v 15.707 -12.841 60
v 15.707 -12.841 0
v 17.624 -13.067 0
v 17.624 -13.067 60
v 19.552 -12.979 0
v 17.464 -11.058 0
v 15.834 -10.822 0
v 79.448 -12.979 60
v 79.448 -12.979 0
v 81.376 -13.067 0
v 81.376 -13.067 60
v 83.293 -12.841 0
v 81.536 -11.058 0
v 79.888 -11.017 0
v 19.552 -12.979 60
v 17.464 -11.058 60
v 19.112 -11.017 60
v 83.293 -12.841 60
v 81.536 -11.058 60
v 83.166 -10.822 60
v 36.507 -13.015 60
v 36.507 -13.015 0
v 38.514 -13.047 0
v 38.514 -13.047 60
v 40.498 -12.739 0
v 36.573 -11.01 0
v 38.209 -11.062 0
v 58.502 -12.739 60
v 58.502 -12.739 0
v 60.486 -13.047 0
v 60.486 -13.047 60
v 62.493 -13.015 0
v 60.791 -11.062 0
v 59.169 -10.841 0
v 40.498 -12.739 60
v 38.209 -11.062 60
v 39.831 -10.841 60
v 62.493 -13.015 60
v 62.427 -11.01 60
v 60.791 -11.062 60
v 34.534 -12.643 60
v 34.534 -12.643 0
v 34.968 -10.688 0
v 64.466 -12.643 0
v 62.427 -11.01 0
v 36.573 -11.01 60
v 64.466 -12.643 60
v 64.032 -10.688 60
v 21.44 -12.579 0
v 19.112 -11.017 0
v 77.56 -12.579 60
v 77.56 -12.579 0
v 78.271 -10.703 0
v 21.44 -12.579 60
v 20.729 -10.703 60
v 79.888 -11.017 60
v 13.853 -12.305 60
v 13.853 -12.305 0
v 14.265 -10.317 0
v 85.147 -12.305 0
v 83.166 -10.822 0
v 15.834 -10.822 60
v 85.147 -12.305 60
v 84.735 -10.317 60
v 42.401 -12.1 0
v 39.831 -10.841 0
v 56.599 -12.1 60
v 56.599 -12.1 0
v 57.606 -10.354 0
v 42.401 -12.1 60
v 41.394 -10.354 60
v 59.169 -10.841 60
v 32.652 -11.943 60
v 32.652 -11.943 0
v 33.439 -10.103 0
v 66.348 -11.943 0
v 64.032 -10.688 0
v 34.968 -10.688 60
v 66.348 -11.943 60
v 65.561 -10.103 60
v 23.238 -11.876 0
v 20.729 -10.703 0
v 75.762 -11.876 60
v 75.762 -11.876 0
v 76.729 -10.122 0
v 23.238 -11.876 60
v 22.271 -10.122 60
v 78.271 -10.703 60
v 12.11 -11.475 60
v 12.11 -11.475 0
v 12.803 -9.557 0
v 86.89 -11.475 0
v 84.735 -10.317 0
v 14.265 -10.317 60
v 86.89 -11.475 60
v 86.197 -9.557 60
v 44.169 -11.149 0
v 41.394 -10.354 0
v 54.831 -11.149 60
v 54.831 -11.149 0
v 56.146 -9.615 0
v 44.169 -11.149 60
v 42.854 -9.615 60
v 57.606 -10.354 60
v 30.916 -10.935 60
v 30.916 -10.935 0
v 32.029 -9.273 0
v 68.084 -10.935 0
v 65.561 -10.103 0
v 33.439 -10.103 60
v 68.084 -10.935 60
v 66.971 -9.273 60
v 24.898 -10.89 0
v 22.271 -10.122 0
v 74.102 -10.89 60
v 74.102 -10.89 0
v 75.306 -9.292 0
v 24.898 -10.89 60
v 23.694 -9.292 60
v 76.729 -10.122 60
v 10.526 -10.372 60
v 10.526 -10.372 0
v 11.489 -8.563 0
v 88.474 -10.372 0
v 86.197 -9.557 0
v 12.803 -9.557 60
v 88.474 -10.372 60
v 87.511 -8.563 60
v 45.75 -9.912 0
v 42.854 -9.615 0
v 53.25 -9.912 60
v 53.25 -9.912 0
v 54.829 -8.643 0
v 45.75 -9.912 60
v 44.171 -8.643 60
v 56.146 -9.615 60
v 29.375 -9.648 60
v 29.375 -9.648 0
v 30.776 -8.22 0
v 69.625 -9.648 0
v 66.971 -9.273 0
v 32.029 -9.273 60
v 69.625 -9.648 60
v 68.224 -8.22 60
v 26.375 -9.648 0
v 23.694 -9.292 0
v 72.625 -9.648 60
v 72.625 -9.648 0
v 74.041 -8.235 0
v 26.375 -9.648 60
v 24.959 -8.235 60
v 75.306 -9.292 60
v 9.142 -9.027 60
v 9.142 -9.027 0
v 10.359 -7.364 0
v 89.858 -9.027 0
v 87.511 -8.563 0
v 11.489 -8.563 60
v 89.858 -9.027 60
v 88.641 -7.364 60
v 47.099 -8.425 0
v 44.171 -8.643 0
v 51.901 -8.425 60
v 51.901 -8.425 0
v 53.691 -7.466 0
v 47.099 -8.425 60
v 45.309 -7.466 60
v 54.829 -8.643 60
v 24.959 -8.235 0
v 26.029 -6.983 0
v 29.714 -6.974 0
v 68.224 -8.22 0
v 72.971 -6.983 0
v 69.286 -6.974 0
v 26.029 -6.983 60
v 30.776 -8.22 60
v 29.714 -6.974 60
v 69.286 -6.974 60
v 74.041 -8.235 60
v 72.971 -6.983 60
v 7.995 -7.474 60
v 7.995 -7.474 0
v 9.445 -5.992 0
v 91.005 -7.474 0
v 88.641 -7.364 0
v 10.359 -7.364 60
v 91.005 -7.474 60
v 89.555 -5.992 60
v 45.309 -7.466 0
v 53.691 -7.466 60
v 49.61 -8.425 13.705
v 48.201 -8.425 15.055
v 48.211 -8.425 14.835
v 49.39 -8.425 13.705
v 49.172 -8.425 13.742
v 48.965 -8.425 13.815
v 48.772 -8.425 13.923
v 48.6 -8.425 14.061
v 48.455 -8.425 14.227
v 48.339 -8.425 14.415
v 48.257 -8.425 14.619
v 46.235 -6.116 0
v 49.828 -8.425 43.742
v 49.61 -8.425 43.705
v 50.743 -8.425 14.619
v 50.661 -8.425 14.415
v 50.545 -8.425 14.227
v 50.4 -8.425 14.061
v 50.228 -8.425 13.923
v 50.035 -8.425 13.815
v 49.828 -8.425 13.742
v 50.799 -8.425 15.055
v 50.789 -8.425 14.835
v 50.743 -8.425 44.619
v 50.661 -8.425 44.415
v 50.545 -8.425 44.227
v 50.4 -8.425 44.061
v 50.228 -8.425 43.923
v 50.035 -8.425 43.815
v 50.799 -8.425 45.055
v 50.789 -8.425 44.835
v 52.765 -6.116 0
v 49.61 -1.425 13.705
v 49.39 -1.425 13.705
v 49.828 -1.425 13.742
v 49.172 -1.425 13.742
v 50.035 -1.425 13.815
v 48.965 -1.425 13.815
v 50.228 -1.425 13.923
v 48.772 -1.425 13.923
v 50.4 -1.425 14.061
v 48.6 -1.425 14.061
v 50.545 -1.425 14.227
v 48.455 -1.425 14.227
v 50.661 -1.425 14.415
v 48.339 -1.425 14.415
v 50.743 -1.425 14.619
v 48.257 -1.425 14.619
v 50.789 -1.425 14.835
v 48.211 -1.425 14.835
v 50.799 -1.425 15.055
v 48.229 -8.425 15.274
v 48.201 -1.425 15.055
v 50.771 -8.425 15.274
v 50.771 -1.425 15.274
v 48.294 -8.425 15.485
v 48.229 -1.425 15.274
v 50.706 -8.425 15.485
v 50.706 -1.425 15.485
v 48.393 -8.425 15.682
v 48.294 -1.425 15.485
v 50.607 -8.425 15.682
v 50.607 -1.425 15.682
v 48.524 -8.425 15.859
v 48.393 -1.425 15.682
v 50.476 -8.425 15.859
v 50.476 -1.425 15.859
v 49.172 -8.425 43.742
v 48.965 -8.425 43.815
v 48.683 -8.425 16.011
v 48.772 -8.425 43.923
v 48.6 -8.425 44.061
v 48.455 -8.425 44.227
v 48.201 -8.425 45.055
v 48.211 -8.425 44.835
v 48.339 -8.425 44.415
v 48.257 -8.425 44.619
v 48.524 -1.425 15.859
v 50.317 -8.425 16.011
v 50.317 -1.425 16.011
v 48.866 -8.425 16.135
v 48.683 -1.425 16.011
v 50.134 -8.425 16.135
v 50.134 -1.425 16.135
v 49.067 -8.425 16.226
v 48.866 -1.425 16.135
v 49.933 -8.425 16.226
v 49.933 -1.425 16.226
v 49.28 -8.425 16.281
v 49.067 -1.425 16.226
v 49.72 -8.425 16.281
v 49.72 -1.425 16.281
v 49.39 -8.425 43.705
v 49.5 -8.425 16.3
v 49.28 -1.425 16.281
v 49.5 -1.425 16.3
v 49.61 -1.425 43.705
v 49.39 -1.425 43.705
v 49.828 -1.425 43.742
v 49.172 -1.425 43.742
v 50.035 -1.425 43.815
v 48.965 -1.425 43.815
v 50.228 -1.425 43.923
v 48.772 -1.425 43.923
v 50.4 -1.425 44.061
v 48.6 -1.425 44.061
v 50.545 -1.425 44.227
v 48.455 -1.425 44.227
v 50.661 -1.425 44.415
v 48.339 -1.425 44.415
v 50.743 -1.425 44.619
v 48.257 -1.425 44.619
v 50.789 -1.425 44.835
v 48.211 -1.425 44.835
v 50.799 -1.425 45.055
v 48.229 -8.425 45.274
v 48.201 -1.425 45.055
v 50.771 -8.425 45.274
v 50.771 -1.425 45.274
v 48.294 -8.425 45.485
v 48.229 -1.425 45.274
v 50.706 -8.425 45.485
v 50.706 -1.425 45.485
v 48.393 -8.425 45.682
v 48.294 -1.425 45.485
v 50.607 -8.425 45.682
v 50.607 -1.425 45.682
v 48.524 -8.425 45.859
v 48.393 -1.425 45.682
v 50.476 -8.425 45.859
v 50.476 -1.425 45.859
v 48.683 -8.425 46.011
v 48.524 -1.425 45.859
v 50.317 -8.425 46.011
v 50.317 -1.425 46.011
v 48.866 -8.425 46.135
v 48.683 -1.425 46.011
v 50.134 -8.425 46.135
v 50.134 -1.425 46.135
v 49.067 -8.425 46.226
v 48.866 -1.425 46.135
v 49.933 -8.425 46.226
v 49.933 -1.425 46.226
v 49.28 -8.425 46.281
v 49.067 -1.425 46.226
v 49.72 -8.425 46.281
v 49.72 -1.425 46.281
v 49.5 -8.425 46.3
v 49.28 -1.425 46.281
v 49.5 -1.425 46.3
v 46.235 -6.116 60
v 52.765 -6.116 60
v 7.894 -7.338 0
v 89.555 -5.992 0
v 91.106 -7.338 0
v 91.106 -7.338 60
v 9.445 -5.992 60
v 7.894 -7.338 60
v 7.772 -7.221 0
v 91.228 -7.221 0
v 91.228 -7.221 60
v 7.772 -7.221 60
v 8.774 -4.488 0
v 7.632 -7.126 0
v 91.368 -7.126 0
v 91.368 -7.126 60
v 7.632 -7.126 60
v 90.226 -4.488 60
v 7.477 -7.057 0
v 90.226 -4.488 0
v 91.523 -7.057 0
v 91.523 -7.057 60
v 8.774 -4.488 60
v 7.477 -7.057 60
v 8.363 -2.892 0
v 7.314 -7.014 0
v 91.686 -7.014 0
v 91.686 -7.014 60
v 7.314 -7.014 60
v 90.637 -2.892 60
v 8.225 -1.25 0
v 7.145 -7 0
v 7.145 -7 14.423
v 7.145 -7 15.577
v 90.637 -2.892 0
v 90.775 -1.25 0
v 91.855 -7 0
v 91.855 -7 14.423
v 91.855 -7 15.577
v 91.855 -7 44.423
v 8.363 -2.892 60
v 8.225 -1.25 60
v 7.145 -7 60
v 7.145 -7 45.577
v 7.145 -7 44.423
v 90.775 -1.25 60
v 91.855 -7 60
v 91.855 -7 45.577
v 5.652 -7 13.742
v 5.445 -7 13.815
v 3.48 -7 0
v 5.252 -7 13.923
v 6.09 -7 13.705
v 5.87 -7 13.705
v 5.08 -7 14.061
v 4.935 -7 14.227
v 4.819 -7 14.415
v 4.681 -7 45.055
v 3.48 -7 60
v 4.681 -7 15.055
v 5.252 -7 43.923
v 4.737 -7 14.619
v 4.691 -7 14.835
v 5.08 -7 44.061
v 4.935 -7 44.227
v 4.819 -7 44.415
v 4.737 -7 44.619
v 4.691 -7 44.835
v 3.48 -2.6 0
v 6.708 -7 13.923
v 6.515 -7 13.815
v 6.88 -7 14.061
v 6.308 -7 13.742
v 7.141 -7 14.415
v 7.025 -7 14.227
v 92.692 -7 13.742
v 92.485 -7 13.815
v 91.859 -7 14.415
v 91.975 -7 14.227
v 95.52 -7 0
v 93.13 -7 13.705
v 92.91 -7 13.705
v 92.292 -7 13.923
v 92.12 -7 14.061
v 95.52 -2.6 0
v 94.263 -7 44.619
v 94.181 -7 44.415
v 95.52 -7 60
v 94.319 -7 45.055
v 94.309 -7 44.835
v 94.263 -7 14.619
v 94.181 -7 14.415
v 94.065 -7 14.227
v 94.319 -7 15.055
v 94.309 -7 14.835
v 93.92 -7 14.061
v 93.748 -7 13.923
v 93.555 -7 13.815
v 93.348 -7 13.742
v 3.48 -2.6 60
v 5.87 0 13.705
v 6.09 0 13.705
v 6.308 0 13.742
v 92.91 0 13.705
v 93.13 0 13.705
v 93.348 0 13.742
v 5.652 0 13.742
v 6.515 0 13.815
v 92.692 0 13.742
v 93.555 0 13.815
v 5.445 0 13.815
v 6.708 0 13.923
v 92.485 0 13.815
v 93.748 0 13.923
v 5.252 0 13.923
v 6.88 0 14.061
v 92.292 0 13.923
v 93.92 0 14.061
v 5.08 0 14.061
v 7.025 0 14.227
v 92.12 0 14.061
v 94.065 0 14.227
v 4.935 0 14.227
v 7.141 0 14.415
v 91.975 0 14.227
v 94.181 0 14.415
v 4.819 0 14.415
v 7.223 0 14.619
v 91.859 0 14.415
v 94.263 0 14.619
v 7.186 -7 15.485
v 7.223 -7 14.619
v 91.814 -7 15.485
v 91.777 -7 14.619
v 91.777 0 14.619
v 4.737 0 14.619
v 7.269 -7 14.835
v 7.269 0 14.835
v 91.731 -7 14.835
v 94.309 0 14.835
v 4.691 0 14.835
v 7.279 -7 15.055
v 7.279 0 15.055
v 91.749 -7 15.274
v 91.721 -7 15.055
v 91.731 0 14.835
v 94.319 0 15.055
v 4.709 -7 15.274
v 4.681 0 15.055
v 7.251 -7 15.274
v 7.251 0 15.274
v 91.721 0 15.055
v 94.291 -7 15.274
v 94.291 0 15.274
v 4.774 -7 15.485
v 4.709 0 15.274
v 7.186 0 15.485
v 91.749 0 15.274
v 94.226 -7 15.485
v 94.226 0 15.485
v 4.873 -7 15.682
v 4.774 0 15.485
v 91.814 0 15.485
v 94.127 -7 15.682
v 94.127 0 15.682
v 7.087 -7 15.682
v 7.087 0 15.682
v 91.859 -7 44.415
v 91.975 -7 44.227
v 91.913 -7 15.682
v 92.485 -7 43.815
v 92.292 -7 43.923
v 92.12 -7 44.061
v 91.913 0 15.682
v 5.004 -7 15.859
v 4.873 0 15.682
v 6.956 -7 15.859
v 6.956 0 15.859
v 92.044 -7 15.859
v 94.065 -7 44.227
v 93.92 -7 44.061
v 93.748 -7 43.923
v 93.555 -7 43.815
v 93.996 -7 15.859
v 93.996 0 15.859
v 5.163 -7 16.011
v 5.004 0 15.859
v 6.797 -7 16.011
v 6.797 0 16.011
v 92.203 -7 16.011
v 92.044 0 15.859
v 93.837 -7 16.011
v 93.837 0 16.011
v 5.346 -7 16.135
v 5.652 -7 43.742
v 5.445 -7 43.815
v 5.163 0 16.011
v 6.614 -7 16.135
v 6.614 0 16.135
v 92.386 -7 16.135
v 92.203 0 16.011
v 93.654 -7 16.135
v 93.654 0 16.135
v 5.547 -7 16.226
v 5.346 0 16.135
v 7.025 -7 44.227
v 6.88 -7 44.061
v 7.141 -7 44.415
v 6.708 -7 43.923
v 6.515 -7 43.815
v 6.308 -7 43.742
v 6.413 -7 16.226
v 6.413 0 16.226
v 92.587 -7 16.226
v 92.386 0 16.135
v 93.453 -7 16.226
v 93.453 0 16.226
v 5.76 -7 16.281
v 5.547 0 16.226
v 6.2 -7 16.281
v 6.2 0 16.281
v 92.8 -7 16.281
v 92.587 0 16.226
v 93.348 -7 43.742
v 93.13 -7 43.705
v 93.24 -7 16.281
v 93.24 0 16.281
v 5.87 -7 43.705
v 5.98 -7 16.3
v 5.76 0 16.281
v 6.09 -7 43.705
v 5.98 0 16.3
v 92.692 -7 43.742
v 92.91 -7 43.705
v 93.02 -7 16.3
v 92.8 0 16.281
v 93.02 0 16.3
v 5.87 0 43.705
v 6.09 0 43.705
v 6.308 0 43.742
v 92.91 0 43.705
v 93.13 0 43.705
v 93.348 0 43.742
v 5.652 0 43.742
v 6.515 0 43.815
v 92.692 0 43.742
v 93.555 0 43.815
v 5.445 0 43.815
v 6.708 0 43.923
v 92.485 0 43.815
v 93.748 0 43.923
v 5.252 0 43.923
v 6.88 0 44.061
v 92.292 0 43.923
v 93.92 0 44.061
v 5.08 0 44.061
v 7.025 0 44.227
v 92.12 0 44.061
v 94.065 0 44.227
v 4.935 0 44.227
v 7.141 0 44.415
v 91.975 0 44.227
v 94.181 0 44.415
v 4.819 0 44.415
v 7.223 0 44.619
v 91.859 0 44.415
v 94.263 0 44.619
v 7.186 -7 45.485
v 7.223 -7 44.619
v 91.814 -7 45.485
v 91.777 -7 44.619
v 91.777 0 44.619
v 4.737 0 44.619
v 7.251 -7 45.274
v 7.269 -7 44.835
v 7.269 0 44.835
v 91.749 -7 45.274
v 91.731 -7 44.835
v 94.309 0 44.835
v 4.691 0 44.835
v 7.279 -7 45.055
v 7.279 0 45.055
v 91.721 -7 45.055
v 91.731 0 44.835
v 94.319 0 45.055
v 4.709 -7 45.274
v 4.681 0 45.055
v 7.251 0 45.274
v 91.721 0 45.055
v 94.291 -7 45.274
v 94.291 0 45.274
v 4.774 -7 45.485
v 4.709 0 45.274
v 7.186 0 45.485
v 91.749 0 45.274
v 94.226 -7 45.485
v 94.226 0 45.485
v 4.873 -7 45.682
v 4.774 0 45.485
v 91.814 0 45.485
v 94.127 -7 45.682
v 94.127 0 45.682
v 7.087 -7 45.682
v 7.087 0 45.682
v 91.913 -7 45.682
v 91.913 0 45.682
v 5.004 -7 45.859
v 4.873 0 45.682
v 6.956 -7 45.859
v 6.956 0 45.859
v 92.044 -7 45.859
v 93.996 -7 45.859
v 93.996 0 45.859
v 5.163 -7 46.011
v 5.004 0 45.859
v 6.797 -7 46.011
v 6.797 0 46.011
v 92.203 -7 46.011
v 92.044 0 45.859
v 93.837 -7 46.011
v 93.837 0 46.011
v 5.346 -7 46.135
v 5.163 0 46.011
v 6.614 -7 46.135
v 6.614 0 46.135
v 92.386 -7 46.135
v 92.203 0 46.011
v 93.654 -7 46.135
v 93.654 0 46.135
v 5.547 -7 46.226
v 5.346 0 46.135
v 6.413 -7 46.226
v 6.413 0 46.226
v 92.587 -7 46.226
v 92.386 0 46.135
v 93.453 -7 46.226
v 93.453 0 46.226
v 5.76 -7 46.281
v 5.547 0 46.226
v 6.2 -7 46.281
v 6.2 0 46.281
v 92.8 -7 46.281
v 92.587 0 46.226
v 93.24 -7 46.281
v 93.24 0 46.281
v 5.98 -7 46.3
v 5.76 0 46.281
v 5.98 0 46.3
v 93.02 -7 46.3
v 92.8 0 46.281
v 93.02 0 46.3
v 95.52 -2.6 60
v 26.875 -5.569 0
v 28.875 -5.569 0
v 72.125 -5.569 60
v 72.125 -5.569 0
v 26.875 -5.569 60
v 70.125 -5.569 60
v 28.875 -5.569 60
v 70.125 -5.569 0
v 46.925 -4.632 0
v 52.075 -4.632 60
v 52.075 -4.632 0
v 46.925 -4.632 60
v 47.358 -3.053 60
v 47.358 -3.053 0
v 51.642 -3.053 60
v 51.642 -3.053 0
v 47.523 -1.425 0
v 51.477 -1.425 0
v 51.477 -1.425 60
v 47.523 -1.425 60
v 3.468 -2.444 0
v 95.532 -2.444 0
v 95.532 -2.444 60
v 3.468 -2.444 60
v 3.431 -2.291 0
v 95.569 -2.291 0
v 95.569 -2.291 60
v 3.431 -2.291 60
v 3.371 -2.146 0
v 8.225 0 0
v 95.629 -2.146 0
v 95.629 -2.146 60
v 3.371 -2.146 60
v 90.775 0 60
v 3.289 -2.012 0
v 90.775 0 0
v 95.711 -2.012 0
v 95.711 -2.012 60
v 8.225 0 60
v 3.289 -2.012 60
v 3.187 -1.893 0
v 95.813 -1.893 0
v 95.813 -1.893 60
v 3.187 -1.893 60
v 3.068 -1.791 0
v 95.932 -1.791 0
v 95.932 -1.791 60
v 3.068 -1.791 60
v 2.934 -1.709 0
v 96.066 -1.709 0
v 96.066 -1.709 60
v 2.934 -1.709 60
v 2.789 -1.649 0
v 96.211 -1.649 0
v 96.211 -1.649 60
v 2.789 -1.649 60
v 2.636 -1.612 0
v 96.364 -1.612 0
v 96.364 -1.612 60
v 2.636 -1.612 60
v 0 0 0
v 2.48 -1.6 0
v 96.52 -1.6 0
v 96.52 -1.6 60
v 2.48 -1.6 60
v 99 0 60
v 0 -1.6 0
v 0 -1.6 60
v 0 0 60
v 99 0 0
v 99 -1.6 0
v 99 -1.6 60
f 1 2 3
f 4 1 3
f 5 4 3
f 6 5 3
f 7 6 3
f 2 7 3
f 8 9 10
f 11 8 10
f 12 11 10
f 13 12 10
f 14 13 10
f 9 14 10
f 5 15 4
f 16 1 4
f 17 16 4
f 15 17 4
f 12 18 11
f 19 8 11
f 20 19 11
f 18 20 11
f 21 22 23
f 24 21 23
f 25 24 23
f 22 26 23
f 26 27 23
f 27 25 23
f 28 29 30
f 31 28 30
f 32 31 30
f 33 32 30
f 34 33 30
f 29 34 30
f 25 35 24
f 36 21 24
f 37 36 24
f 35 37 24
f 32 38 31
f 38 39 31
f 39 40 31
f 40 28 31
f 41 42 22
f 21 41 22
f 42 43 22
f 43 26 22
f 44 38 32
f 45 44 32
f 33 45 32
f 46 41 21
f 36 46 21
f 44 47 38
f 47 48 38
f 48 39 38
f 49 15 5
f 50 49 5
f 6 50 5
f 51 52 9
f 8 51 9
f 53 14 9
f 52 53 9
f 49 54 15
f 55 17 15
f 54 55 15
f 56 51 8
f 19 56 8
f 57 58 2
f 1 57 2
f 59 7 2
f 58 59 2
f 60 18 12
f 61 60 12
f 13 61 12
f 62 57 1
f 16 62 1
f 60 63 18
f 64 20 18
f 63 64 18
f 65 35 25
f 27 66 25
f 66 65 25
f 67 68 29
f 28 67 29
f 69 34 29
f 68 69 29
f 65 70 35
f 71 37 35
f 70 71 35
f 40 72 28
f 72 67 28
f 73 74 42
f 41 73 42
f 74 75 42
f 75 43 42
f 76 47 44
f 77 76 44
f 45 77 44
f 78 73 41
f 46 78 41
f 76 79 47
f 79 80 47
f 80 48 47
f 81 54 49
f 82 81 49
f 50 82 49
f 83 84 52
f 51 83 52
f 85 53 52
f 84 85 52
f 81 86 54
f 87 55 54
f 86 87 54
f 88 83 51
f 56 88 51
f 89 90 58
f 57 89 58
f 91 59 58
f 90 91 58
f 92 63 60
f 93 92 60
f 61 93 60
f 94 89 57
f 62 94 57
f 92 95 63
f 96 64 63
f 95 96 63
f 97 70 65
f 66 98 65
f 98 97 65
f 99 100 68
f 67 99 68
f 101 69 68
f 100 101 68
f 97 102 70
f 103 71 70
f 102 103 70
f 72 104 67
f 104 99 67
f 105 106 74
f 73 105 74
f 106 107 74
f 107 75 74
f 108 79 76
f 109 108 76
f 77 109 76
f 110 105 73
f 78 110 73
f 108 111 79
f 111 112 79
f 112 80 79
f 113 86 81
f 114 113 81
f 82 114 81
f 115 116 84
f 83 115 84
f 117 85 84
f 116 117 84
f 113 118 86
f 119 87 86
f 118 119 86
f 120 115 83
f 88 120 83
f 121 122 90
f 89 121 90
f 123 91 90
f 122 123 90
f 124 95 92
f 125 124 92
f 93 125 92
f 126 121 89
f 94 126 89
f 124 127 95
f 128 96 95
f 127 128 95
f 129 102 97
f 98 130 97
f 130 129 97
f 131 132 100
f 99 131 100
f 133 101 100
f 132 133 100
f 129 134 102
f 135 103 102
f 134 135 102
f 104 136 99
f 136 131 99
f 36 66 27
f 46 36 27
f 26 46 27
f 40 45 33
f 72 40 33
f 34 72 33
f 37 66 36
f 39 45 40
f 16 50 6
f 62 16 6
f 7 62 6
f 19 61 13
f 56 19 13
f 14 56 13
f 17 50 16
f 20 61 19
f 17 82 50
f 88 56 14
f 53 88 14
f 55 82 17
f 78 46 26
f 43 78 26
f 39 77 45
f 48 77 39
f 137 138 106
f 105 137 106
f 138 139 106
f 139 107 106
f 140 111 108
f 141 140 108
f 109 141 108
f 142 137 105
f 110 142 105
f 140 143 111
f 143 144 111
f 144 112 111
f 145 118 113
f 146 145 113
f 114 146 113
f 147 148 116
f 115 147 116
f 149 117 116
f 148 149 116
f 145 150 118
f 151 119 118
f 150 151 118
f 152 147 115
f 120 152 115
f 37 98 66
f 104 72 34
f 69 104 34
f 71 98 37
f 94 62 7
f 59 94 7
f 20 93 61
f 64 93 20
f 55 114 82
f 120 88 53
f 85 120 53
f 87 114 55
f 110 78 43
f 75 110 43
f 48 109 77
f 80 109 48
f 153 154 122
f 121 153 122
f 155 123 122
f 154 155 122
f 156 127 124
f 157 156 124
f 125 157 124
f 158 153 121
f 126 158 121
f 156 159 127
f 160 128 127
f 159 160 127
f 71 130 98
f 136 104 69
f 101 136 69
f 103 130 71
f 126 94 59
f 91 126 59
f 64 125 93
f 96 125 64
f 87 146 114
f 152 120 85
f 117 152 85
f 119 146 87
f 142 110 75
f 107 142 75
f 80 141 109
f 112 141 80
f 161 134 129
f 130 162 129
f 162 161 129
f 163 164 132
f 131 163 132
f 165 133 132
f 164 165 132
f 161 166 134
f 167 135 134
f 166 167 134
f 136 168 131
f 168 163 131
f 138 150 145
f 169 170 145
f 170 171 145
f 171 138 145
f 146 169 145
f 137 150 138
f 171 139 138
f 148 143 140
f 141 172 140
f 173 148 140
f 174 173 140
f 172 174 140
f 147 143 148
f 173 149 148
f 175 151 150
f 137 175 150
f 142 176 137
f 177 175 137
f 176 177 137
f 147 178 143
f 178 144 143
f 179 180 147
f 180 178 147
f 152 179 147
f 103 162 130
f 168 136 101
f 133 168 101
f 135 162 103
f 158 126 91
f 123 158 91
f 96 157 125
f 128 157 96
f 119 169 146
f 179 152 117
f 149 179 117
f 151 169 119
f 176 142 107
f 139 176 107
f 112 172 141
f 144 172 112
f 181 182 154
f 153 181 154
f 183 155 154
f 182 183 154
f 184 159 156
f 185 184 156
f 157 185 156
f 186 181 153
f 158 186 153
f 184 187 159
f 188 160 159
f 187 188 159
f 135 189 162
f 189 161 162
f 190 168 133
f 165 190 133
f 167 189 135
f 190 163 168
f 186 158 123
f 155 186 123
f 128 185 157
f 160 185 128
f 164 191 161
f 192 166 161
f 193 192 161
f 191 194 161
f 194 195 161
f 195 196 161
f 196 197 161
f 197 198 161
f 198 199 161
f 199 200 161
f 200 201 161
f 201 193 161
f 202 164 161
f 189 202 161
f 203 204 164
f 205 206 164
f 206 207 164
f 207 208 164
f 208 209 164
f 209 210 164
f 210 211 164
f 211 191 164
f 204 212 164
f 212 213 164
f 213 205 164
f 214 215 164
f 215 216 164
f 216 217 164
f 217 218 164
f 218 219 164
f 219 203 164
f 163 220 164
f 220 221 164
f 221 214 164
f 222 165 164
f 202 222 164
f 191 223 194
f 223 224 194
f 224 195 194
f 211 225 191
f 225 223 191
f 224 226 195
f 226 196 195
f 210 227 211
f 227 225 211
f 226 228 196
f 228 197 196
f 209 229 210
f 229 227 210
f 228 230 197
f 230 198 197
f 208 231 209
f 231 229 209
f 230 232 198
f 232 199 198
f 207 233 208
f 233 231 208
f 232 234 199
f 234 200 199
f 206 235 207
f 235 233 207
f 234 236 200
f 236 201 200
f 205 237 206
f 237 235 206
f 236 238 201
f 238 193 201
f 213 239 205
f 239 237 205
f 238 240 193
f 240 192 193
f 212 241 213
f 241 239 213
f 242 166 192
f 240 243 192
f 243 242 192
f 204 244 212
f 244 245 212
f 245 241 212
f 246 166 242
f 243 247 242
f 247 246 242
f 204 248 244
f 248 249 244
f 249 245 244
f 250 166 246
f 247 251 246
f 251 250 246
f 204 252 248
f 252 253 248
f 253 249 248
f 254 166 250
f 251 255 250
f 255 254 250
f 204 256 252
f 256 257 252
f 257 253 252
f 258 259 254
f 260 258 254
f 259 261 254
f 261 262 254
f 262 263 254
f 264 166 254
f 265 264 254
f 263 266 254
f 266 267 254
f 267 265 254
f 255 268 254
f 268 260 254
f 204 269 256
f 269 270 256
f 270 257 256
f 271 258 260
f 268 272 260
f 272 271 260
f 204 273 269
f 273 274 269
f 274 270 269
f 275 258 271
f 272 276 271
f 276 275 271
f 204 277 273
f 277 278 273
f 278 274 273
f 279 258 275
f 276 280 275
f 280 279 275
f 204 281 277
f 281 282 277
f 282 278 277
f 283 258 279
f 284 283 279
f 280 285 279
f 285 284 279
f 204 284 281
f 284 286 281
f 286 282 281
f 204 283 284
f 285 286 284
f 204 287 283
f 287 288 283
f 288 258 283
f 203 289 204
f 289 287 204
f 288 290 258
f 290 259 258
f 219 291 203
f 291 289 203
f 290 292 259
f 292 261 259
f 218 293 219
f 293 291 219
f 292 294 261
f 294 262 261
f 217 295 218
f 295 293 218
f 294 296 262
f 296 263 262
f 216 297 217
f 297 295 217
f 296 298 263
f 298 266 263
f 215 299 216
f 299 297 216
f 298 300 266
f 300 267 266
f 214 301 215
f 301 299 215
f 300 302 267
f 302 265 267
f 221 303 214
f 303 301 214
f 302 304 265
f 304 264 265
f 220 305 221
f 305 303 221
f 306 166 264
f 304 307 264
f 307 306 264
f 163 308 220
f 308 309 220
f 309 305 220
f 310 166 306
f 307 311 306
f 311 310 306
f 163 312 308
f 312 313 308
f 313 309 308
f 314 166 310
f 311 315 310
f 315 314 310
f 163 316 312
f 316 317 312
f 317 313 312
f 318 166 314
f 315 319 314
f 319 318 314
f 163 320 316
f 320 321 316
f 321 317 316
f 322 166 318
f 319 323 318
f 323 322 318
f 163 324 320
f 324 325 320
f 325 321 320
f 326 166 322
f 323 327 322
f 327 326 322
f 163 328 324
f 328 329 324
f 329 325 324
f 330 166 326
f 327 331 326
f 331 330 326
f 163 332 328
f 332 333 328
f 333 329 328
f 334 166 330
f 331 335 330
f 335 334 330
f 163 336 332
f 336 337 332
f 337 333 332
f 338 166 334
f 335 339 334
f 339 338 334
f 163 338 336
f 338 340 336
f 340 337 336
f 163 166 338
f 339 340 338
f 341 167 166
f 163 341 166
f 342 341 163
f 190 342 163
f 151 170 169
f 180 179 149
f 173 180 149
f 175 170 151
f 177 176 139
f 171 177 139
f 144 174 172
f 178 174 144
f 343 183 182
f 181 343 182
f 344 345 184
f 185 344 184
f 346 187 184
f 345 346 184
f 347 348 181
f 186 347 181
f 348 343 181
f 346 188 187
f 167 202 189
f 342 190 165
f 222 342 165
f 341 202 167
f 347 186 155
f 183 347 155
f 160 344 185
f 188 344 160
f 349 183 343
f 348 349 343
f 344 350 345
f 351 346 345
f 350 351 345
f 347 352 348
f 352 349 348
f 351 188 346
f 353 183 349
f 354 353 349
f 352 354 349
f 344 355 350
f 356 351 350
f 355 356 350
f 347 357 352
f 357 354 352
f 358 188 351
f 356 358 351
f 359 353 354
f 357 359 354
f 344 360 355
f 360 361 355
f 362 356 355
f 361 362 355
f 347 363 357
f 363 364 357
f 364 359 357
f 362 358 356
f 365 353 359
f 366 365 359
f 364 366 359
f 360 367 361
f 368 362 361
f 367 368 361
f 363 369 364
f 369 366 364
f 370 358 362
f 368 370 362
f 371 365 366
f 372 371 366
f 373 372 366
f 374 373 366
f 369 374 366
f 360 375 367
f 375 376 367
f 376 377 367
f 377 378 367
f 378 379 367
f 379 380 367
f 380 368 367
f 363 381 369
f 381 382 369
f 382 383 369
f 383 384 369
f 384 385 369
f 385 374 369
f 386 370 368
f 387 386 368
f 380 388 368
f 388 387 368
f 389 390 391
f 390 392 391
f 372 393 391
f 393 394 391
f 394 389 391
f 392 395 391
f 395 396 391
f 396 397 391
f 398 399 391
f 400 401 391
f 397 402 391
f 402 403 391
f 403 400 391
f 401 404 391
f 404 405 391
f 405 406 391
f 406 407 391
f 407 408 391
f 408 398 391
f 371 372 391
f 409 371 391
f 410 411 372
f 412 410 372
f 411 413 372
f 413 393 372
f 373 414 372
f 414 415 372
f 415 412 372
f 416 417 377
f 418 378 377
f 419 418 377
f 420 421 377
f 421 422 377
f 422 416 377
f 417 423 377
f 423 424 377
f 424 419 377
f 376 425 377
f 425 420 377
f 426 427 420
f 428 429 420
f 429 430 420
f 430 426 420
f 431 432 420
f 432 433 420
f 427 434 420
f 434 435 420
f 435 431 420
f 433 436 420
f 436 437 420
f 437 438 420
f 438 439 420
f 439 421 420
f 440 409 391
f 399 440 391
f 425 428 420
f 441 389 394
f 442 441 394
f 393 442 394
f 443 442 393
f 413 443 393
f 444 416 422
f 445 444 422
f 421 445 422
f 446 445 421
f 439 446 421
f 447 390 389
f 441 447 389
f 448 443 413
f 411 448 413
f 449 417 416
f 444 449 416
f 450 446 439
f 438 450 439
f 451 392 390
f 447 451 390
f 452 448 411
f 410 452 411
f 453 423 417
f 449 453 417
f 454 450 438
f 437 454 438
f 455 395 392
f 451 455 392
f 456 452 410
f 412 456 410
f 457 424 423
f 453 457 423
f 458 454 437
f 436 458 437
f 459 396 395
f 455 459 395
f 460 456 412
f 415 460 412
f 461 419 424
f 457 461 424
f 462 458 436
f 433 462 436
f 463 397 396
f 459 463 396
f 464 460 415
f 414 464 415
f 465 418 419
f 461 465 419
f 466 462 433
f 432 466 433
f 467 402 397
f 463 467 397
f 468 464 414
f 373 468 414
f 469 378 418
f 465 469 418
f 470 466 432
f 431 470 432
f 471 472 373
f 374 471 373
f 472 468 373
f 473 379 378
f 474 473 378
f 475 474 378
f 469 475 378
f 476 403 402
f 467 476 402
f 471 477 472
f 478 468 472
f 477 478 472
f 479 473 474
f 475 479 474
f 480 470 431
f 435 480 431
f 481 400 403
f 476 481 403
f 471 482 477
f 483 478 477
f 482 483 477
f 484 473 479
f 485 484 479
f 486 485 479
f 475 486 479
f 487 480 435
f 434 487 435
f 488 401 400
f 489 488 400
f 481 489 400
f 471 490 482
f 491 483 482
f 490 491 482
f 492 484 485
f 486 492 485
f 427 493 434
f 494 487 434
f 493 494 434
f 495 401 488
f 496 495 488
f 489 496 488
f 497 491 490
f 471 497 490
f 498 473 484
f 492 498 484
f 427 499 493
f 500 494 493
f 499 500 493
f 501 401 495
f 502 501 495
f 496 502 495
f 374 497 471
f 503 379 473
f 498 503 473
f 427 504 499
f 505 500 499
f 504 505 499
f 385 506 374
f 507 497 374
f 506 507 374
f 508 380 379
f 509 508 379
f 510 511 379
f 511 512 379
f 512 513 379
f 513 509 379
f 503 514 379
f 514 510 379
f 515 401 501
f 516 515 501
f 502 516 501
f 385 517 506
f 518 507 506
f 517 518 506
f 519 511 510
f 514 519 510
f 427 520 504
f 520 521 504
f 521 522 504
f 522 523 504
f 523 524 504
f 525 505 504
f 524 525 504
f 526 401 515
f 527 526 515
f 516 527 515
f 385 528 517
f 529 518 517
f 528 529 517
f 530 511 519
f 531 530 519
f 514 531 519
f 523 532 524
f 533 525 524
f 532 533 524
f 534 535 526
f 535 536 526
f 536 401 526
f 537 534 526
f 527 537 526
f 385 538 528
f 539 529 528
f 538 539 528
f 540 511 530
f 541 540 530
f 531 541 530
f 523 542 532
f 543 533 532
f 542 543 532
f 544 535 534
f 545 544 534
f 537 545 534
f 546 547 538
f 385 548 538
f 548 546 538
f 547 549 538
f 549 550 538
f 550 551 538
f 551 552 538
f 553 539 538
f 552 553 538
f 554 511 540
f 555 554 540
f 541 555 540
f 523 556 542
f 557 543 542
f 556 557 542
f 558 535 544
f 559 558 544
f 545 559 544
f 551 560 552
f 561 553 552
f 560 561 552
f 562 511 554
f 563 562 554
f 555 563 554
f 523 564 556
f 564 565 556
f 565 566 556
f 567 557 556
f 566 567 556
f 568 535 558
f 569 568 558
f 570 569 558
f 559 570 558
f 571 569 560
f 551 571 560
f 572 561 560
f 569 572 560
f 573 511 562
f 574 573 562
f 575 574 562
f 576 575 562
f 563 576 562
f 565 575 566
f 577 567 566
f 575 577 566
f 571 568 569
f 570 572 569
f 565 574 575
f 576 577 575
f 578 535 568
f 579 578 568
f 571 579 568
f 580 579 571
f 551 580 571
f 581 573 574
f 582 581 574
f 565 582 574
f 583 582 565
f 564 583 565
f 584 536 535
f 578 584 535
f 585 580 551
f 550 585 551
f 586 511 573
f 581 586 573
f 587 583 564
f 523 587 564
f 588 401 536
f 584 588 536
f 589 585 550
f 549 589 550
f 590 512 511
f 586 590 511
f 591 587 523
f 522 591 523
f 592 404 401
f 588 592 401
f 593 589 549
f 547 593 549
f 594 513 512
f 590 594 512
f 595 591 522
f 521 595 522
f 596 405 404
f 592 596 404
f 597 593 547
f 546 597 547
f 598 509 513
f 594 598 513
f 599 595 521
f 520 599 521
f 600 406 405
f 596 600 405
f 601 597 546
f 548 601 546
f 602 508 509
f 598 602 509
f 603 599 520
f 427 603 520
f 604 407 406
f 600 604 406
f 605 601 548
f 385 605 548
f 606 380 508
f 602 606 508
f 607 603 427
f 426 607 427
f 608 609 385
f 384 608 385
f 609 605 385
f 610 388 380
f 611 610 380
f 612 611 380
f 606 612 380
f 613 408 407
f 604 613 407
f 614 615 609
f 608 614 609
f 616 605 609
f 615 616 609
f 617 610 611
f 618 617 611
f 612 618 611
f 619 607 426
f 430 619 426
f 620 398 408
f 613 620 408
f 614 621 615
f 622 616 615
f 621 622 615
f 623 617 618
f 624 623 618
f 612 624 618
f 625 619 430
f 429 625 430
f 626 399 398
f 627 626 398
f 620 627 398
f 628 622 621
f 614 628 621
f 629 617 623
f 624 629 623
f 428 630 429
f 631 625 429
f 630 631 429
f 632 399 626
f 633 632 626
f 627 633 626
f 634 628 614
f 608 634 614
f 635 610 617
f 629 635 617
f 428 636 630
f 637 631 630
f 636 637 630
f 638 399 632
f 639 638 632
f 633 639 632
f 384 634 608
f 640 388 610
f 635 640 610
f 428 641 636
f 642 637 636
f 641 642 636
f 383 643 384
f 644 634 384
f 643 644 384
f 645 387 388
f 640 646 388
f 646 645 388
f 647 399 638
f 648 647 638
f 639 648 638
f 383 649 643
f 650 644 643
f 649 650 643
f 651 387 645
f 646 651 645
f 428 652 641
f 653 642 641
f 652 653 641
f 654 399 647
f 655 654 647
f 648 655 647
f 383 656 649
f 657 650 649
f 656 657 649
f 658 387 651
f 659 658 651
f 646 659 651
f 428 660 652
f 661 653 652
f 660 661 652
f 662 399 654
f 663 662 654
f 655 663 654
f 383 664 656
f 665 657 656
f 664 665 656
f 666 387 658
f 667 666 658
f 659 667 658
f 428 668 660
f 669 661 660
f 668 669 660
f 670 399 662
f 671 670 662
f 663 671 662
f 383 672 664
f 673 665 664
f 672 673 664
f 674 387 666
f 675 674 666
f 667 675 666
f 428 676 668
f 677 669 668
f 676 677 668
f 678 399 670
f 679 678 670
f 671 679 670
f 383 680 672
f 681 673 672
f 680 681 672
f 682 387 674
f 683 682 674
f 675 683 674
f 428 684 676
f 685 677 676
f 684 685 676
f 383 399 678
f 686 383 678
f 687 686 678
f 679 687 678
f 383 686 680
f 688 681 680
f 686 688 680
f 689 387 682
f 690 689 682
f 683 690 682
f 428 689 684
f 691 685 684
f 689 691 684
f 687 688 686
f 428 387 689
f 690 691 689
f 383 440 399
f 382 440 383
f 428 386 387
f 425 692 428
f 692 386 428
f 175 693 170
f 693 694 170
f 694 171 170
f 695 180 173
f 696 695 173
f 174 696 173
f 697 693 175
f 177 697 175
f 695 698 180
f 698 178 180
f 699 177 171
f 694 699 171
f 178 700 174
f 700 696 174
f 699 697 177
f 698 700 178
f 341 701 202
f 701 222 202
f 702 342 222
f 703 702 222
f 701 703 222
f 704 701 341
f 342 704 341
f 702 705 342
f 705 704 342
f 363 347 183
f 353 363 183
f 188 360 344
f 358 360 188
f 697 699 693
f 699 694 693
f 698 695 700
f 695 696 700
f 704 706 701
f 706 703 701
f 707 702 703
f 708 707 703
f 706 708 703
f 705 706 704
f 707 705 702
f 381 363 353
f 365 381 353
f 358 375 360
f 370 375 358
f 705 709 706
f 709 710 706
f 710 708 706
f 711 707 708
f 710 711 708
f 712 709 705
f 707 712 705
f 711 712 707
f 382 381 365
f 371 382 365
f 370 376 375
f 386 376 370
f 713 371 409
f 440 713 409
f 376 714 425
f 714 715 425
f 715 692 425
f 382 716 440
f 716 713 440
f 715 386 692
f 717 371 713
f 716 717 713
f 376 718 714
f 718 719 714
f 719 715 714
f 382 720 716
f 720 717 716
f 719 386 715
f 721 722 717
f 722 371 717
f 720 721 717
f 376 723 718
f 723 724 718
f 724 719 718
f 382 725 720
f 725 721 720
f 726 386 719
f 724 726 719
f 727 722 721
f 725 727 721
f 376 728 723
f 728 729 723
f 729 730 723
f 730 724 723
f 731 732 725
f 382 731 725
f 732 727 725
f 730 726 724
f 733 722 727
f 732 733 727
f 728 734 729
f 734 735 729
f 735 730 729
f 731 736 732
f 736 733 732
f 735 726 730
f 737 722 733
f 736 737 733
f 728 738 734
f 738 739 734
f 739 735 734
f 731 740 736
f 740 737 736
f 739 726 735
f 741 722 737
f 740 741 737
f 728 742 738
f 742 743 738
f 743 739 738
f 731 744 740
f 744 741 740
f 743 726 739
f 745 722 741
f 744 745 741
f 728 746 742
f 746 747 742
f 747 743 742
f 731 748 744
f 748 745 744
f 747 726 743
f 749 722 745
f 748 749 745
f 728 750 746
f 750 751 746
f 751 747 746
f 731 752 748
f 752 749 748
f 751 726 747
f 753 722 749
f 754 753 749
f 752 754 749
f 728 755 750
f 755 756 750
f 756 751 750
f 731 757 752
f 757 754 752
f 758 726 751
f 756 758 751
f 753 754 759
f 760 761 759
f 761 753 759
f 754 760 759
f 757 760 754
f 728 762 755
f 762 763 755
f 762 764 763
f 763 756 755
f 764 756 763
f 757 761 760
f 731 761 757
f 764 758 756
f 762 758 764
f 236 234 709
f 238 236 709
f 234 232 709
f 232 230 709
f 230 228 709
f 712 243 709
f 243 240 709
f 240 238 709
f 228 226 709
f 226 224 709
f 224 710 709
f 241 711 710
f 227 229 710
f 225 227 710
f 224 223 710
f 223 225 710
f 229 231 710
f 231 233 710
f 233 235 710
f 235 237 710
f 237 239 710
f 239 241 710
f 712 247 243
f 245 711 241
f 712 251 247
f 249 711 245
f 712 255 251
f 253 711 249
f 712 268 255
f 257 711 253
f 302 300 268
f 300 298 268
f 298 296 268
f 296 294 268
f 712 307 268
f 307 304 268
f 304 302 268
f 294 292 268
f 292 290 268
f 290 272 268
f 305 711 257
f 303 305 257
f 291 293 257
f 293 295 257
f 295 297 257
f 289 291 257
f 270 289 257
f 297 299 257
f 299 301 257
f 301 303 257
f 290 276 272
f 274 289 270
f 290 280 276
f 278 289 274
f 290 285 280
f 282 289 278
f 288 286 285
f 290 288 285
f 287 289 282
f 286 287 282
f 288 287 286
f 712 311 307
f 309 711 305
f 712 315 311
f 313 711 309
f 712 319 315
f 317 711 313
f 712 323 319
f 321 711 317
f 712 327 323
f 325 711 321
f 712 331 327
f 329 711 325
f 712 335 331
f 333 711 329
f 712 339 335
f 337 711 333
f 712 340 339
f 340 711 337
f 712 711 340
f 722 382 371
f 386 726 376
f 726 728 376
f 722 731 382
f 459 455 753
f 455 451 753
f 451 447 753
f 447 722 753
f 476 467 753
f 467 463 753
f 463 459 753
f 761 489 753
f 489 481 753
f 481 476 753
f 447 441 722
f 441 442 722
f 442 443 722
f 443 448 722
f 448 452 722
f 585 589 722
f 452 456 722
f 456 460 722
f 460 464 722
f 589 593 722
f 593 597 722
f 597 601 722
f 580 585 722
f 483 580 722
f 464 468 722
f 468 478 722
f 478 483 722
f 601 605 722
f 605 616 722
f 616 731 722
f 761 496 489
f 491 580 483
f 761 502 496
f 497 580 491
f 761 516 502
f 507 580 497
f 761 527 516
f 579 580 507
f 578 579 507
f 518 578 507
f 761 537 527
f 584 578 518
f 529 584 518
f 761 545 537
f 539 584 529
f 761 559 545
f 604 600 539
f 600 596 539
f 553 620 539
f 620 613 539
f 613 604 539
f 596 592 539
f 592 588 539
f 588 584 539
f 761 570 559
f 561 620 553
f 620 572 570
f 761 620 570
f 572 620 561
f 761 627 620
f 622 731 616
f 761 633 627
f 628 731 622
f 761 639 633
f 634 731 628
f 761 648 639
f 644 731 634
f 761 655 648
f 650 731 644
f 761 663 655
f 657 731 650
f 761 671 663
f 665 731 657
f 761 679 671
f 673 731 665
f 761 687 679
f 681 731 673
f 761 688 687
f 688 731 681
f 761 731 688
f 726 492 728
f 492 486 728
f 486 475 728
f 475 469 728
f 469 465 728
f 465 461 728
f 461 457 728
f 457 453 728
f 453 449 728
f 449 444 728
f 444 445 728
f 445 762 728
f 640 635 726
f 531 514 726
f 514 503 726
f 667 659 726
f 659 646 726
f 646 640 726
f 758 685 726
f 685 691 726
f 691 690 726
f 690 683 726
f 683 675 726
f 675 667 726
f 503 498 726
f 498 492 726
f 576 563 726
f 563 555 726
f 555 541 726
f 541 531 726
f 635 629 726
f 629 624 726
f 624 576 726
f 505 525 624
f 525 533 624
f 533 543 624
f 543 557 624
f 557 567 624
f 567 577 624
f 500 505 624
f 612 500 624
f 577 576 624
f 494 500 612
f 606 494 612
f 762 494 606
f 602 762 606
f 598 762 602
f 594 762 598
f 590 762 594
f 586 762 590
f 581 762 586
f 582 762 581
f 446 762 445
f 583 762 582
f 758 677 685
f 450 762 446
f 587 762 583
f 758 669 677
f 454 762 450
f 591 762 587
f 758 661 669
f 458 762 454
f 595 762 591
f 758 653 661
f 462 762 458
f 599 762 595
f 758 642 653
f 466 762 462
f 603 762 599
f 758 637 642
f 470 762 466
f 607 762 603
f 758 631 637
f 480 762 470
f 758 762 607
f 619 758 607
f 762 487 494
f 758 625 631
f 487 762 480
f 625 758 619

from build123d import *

# Parameters (mm, degrees)
BOSS_EXTRUDE1_DEPTH                  = 60
FILLET1_R                            = 1
F_2_6_START                          = -7
F_2_6_2_6_DIAMETER_HOLE1_OUTLINE_R   = 1.3
F_2_6_2_6_DIAMETER_HOLE1_DEPTH       = 7
F_2_6_START_2                        = -8.425
F_2_6_2_6_DIAMETER_HOLE1_2_OUTLINE_R = 1.3
F_2_6_2_6_DIAMETER_HOLE1_2_DEPTH     = 1.425


# Read off the part's stored shape, not the designer's step: Ø2.6 (2.6) Diameter Hole1
with BuildPart() as part:
    # Sketch1 → Boss-Extrude1 (new body)
    with BuildSketch(Plane.XY):
        with BuildLine():
            Line((0, 0), (8.225, 0))
            Line((8.225, 0), (8.225, -1.25))
            ThreePointArc((8.225, -1.25), (15.833583974, -10.821735736), (26.875, -5.568564576))
            Line((26.875, -5.568564576), (28.875, -5.568564576))
            ThreePointArc((28.875, -5.568564576), (39.831080274, -10.841095968), (47.523441352, -1.425))
            Line((47.523441352, -1.425), (51.476558648, -1.425))
            ThreePointArc((51.476558648, -1.425), (59.168919726, -10.841095968), (70.125, -5.568564576))
            Line((70.125, -5.568564576), (72.125, -5.568564576))
            ThreePointArc((72.125, -5.568564576), (83.166416026, -10.821735736), (90.775, -1.25))
            Line((90.775, -1.25), (90.775, 0))
            Line((90.775, 0), (99, 0))
            Line((99, 0), (99, -1.6))
            Line((99, -1.6), (95.52, -1.6))
            Line((95.52, -1.6), (95.52, -7))
            Line((95.52, -7), (91.282866253, -7))
            ThreePointArc((91.282866253, -7), (82.611549593, -12.957684568), (72.625, -9.647916408))
            Line((72.625, -9.647916408), (69.625, -9.647916408))
            ThreePointArc((69.625, -9.647916408), (60.486058022, -13.046953991), (51.90053193, -8.425))
            Line((51.90053193, -8.425), (47.09946807, -8.425))
            ThreePointArc((47.09946807, -8.425), (38.513941978, -13.046953991), (29.375, -9.647916408))
            Line((29.375, -9.647916408), (26.375, -9.647916408))
            ThreePointArc((26.375, -9.647916408), (16.388450407, -12.957684568), (7.717133747, -7))
            Line((7.717133747, -7), (3.48, -7))
            Line((3.48, -7), (3.48, -1.6))
            Line((3.48, -1.6), (0, -1.6))
            Line((0, -1.6), (0, 0))
        make_face()
    extrude(amount=BOSS_EXTRUDE1_DEPTH)

    # Fillet1
    fillet1_edges = [part.edges().sort_by_distance(p)[0] for p in [
        (95.52, -1.6, 30),
        (91.282866253, -7, 30),
        (7.717133747, -7, 30),
        (3.48, -1.6, 30),
    ]]
    fillet(fillet1_edges, radius=FILLET1_R)

    # Ø2.6 (2.6) Diameter Hole1 outline → Ø2.6 (2.6) Diameter Hole1 (cut)
    with BuildSketch(Plane(origin=(0, 0, 0), x_dir=(1, 0, 0), z_dir=(0, 1, 0)).offset(F_2_6_START)):
        with Locations((93.02, -15)):
            Circle(F_2_6_2_6_DIAMETER_HOLE1_OUTLINE_R)
        with Locations((93.02, -45)):
            Circle(F_2_6_2_6_DIAMETER_HOLE1_OUTLINE_R)
        with Locations((49.5, -15)):
            Circle(F_2_6_2_6_DIAMETER_HOLE1_OUTLINE_R)
        with Locations((49.5, -45)):
            Circle(F_2_6_2_6_DIAMETER_HOLE1_OUTLINE_R)
    f_2_6_2_6_diameter_hole1 = extrude(amount=F_2_6_2_6_DIAMETER_HOLE1_DEPTH, mode=Mode.SUBTRACT)

    # 2.6 _2.6_ Diameter Hole1 2 outline → 2.6 _2.6_ Diameter Hole1 2 (cut)
    with BuildSketch(Plane(origin=(0, 0, 0), x_dir=(1, 0, 0), z_dir=(0, 1, 0)).offset(F_2_6_START_2)):
        with Locations((49.5, -15)):
            Circle(F_2_6_2_6_DIAMETER_HOLE1_2_OUTLINE_R)
        with Locations((49.5, -45)):
            Circle(F_2_6_2_6_DIAMETER_HOLE1_2_OUTLINE_R)
    f_2_6_2_6_diameter_hole1_2 = extrude(amount=F_2_6_2_6_DIAMETER_HOLE1_2_DEPTH, mode=Mode.SUBTRACT)

    # Mirror1: Ø2.6 (2.6) Diameter Hole1, 2.6 _2.6_ Diameter Hole1 2 across plane
    add(f_2_6_2_6_diameter_hole1.mirror(Plane.ZY.offset(-49.5)), mode=Mode.SUBTRACT)
    add(f_2_6_2_6_diameter_hole1_2.mirror(Plane.ZY.offset(-49.5)), mode=Mode.SUBTRACT)


solid = part.part
